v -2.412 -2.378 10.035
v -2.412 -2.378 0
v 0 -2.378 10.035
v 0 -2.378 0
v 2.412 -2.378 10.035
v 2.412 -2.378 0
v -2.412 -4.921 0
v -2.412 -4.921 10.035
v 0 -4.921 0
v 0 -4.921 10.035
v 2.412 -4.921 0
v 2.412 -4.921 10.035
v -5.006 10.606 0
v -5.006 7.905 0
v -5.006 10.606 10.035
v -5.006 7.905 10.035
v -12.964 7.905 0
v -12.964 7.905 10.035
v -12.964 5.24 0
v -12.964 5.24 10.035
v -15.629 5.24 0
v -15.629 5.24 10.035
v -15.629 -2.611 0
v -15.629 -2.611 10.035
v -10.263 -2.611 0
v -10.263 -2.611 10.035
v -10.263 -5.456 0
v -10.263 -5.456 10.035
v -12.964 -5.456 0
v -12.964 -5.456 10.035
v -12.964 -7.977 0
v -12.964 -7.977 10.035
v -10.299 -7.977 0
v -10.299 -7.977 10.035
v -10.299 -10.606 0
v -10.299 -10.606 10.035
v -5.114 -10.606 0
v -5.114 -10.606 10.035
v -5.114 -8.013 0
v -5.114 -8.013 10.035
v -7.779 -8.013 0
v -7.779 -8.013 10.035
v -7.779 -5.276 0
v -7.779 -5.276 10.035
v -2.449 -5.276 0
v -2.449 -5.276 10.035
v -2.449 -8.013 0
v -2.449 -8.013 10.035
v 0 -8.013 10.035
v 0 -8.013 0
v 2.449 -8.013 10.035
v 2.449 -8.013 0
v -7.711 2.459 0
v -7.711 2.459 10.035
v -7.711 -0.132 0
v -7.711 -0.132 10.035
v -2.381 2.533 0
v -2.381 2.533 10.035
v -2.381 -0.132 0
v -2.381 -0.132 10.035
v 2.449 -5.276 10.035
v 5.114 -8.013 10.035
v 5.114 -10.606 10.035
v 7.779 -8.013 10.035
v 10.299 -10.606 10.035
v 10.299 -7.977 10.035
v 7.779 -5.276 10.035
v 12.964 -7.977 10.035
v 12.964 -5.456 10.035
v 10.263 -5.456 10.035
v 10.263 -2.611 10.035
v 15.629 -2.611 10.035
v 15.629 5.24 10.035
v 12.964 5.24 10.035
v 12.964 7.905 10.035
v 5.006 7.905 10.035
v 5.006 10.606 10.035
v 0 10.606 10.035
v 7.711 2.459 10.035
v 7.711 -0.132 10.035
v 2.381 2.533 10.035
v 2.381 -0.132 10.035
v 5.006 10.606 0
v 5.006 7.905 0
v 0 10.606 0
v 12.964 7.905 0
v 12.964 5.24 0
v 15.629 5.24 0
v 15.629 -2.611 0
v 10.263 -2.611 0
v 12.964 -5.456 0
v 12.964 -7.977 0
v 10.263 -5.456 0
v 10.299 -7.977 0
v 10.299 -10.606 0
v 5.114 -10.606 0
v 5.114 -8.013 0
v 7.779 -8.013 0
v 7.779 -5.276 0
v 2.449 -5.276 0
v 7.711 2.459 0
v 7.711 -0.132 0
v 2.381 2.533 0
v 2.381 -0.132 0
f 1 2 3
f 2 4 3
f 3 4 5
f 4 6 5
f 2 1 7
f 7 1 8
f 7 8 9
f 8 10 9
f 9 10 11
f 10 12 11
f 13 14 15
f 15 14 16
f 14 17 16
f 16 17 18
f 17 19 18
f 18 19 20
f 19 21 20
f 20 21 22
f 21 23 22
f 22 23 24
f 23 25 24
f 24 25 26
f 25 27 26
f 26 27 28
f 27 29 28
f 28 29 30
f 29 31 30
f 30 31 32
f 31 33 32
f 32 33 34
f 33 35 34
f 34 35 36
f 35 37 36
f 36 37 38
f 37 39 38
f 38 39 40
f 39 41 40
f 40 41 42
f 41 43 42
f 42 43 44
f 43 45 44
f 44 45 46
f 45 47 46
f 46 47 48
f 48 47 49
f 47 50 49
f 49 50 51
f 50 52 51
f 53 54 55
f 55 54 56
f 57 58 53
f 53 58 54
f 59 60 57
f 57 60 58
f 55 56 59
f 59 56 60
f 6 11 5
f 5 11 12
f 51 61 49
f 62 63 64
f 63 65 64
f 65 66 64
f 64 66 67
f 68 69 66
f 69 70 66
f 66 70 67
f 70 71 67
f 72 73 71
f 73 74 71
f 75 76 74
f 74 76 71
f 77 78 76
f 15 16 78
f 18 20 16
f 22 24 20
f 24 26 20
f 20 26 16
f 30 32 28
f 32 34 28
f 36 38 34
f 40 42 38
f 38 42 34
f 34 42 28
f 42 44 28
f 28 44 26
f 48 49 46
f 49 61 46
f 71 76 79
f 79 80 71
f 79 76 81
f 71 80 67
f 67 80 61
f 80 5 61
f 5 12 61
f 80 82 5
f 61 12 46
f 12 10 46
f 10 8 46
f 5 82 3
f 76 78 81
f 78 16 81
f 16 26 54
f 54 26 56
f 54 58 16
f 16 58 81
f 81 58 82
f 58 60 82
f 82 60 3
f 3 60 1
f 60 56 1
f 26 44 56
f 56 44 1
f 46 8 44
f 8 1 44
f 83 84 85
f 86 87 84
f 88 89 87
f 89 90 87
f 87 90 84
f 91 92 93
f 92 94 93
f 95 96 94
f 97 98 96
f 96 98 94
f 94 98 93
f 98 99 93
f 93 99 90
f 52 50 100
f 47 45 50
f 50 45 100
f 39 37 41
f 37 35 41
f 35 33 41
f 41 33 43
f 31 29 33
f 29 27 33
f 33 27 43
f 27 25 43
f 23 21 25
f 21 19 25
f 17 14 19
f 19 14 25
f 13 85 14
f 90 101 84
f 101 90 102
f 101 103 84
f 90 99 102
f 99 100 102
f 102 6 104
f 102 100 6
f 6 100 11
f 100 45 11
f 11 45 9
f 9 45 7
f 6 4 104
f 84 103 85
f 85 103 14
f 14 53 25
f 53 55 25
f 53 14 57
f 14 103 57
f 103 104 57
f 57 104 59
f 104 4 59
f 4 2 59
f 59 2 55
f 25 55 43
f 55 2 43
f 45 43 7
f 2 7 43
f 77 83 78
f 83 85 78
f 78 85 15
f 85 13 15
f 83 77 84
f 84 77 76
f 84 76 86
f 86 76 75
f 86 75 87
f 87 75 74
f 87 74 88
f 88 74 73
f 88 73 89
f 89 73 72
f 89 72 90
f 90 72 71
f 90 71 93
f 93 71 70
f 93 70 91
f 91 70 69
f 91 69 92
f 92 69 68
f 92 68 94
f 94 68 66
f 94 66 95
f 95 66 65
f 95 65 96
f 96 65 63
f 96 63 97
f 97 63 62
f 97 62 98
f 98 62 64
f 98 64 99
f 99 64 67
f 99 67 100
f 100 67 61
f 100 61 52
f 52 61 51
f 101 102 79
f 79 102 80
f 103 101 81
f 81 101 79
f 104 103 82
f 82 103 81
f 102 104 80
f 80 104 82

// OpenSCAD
module invaders_v2_3() 
{
	polyhedron(
		points=[
			[-2.411966, -2.378253, 10.03545],
			[-2.411966, -2.378253, 0.0],
			[5.722046e-06, -2.378253, 10.03545],
			[-2.411966, -2.378253, 0.0],
			[5.722046e-06, -2.378251, 0.0],
			[5.722046e-06, -2.378253, 10.03545],
			[5.722046e-06, -2.378253, 10.03545],
			[5.722046e-06, -2.378251, 0.0],
			[2.41197, -2.378253, 10.03545],
			[5.722046e-06, -2.378251, 0.0],
			[2.41197, -2.378253, 0.0],
			[2.41197, -2.378253, 10.03545],
			[-2.411966, -2.378253, 0.0],
			[-2.411966, -2.378253, 10.03545],
			[-2.411966, -4.921153, 0.0],
			[-2.411966, -4.921153, 0.0],
			[-2.411966, -2.378253, 10.03545],
			[-2.411966, -4.921153, 10.03545],
			[-2.411966, -4.921153, 0.0],
			[-2.411966, -4.921153, 10.03545],
			[5.722046e-06, -4.921153, 0.0],
			[-2.411966, -4.921153, 10.03545],
			[5.722046e-06, -4.921153, 10.03545],
			[5.722046e-06, -4.921153, 0.0],
			[5.722046e-06, -4.921153, 0.0],
			[5.722046e-06, -4.921153, 10.03545],
			[2.41197, -4.921153, 0.0],
			[5.722046e-06, -4.921153, 10.03545],
			[2.41197, -4.921153, 10.03545],
			[2.41197, -4.921153, 0.0],
			[-5.005663, 10.60553, 0.0],
			[-5.005663, 7.904635, 0.0],
			[-5.005663, 10.60553, 10.03545],
			[-5.005663, 10.60553, 10.03545],
			[-5.005663, 7.904635, 0.0],
			[-5.005663, 7.904635, 10.03545],
			[-5.005663, 7.904635, 0.0],
			[-12.96432, 7.904635, 0.0],
			[-5.005663, 7.904635, 10.03545],
			[-5.005663, 7.904635, 10.03545],
			[-12.96432, 7.904635, 0.0],
			[-12.96432, 7.904635, 10.03545],
			[-12.96432, 7.904635, 0.0],
			[-12.96432, 5.239746, 0.0],
			[-12.96432, 7.904635, 10.03545],
			[-12.96432, 7.904635, 10.03545],
			[-12.96432, 5.239746, 0.0],
			[-12.96432, 5.239746, 10.03545],
			[-12.96432, 5.239746, 0.0],
			[-15.62921, 5.239746, 0.0],
			[-12.96432, 5.239746, 10.03545],
			[-12.96432, 5.239746, 10.03545],
			[-15.62921, 5.239746, 0.0],
			[-15.62921, 5.239746, 10.03544],
			[-15.62921, 5.239746, 0.0],
			[-15.62921, -2.610869, 0.0],
			[-15.62921, 5.239746, 10.03544],
			[-15.62921, 5.239746, 10.03544],
			[-15.62921, -2.610869, 0.0],
			[-15.62921, -2.610869, 10.03544],
			[-15.62921, -2.610869, 0.0],
			[-10.26342, -2.610869, 0.0],
			[-15.62921, -2.610869, 10.03544],
			[-15.62921, -2.610869, 10.03544],
			[-10.26342, -2.610869, 0.0],
			[-10.26342, -2.610869, 10.03545],
			[-10.26342, -2.610869, 0.0],
			[-10.26342, -5.455817, 0.0],
			[-10.26342, -2.610869, 10.03545],
			[-10.26342, -2.610869, 10.03545],
			[-10.26342, -5.455817, 0.0],
			[-10.26342, -5.455817, 10.03545],
			[-10.26342, -5.455817, 0.0],
			[-12.96432, -5.455817, 0.0],
			[-10.26342, -5.455817, 10.03545],
			[-10.26342, -5.455817, 10.03545],
			[-12.96432, -5.455817, 0.0],
			[-12.96432, -5.455817, 10.03545],
			[-12.96432, -5.455817, 0.0],
			[-12.96432, -7.976657, 0.0],
			[-12.96432, -5.455817, 10.03545],
			[-12.96432, -5.455817, 10.03545],
			[-12.96432, -7.976657, 0.0],
			[-12.96432, -7.976657, 10.03545],
			[-12.96432, -7.976657, 0.0],
			[-10.29943, -7.976657, 0.0],
			[-12.96432, -7.976657, 10.03545],
			[-12.96432, -7.976657, 10.03545],
			[-10.29943, -7.976657, 0.0],
			[-10.29943, -7.976657, 10.03545],
			[-10.29943, -7.976657, 0.0],
			[-10.29943, -10.60553, 0.0],
			[-10.29943, -7.976657, 10.03545],
			[-10.29943, -7.976657, 10.03545],
			[-10.29943, -10.60553, 0.0],
			[-10.29943, -10.60553, 10.03545],
			[-10.29943, -10.60553, 0.0],
			[-5.113695, -10.60553, 0.0],
			[-10.29943, -10.60553, 10.03545],
			[-10.29943, -10.60553, 10.03545],
			[-5.113695, -10.60553, 0.0],
			[-5.113695, -10.60553, 10.03545],
			[-5.113695, -10.60553, 0.0],
			[-5.113695, -8.012669, 0.0],
			[-5.113695, -10.60553, 10.03545],
			[-5.113695, -10.60553, 10.03545],
			[-5.113695, -8.012669, 0.0],
			[-5.113695, -8.012669, 10.03545],
			[-5.113695, -8.012669, 0.0],
			[-7.778589, -8.012669, 0.0],
			[-5.113695, -8.012669, 10.03545],
			[-5.113695, -8.012669, 10.03545],
			[-7.778589, -8.012669, 0.0],
			[-7.778589, -8.012669, 10.03545],
			[-7.778589, -8.012669, 0.0],
			[-7.778589, -5.275758, 0.0],
			[-7.778589, -8.012669, 10.03545],
			[-7.778589, -8.012669, 10.03545],
			[-7.778589, -5.275758, 0.0],
			[-7.778589, -5.275758, 10.03545],
			[-7.778589, -5.275758, 0.0],
			[-2.448809, -5.275758, 0.0],
			[-7.778589, -5.275758, 10.03545],
			[-7.778589, -5.275758, 10.03545],
			[-2.448809, -5.275758, 0.0],
			[-2.448809, -5.275758, 10.03545],
			[-2.448809, -5.275758, 0.0],
			[-2.448809, -8.012669, 0.0],
			[-2.448809, -5.275758, 10.03545],
			[-2.448809, -5.275758, 10.03545],
			[-2.448809, -8.012669, 0.0],
			[-2.448809, -8.012669, 10.03545],
			[-2.448809, -8.012669, 10.03545],
			[-2.448809, -8.012669, 0.0],
			[5.722046e-06, -8.012669, 10.03545],
			[-2.448809, -8.012669, 0.0],
			[5.722046e-06, -8.012669, 0.0],
			[5.722046e-06, -8.012669, 10.03545],
			[5.722046e-06, -8.012669, 10.03545],
			[5.722046e-06, -8.012669, 0.0],
			[2.448812, -8.012669, 10.03545],
			[5.722046e-06, -8.012669, 0.0],
			[2.448812, -8.012669, 0.0],
			[2.448812, -8.012669, 10.03545],
			[-7.710535, 2.458877, 0.0],
			[-7.710535, 2.458877, 10.03545],
			[-7.710535, -0.1319245, 0.0],
			[-7.710535, -0.1319245, 0.0],
			[-7.710535, 2.458877, 10.03545],
			[-7.710535, -0.1319245, 10.03545],
			[-2.380884, 2.5329, 0.0],
			[-2.380884, 2.5329, 10.03545],
			[-7.710535, 2.458877, 0.0],
			[-7.710535, 2.458877, 0.0],
			[-2.380884, 2.5329, 10.03545],
			[-7.710535, 2.458877, 10.03545],
			[-2.380884, -0.1319245, 0.0],
			[-2.380884, -0.1319245, 10.03545],
			[-2.380884, 2.5329, 0.0],
			[-2.380884, 2.5329, 0.0],
			[-2.380884, -0.1319245, 10.03545],
			[-2.380884, 2.5329, 10.03545],
			[-7.710535, -0.1319245, 0.0],
			[-7.710535, -0.1319245, 10.03545],
			[-2.380884, -0.1319245, 0.0],
			[-2.380884, -0.1319245, 0.0],
			[-7.710535, -0.1319245, 10.03545],
			[-2.380884, -0.1319245, 10.03545],
			[2.41197, -2.378253, 0.0],
			[2.41197, -4.921153, 0.0],
			[2.41197, -2.378253, 10.03545],
			[2.41197, -2.378253, 10.03545],
			[2.41197, -4.921153, 0.0],
			[2.41197, -4.921153, 10.03545],
			[2.448812, -8.012669, 10.03545],
			[2.448812, -5.275758, 10.03545],
			[5.722046e-06, -8.012669, 10.03545],
			[5.113699, -8.012671, 10.03545],
			[5.113699, -10.60553, 10.03545],
			[7.778585, -8.012671, 10.03545],
			[5.113699, -10.60553, 10.03545],
			[10.29942, -10.60553, 10.03545],
			[7.778585, -8.012671, 10.03545],
			[10.29942, -10.60553, 10.03545],
			[10.29942, -7.976657, 10.03545],
			[7.778585, -8.012671, 10.03545],
			[7.778585, -8.012671, 10.03545],
			[10.29942, -7.976657, 10.03545],
			[7.778585, -5.275758, 10.03545],
			[12.96432, -7.976659, 10.03545],
			[12.96432, -5.455819, 10.03545],
			[10.29942, -7.976657, 10.03545],
			[12.96432, -5.455819, 10.03545],
			[10.26341, -5.455819, 10.03545],
			[10.29942, -7.976657, 10.03545],
			[10.29942, -7.976657, 10.03545],
			[10.26341, -5.455819, 10.03545],
			[7.778585, -5.275758, 10.03545],
			[10.26341, -5.455819, 10.03545],
			[10.26341, -2.610871, 10.03545],
			[7.778585, -5.275758, 10.03545],
			[15.62921, -2.610871, 10.03545],
			[15.62921, 5.239745, 10.03545],
			[10.26341, -2.610871, 10.03545],
			[15.62921, 5.239745, 10.03545],
			[12.96432, 5.239745, 10.03545],
			[10.26341, -2.610871, 10.03545],
			[12.96432, 7.904634, 10.03545],
			[5.005667, 7.904634, 10.03545],
			[12.96432, 5.239745, 10.03545],
			[12.96432, 5.239745, 10.03545],
			[5.005667, 7.904634, 10.03545],
			[10.26341, -2.610871, 10.03545],
			[5.005667, 10.60553, 10.03545],
			[5.722046e-06, 10.60553, 10.03545],
			[5.005667, 7.904634, 10.03545],
			[-5.005663, 10.60553, 10.03545],
			[-5.005663, 7.904635, 10.03545],
			[5.722046e-06, 10.60553, 10.03545],
			[-12.96432, 7.904635, 10.03545],
			[-12.96432, 5.239746, 10.03545],
			[-5.005663, 7.904635, 10.03545],
			[-15.62921, 5.239746, 10.03544],
			[-15.62921, -2.610869, 10.03544],
			[-12.96432, 5.239746, 10.03545],
			[-15.62921, -2.610869, 10.03544],
			[-10.26342, -2.610869, 10.03545],
			[-12.96432, 5.239746, 10.03545],
			[-12.96432, 5.239746, 10.03545],
			[-10.26342, -2.610869, 10.03545],
			[-5.005663, 7.904635, 10.03545],
			[-12.96432, -5.455817, 10.03545],
			[-12.96432, -7.976657, 10.03545],
			[-10.26342, -5.455817, 10.03545],
			[-12.96432, -7.976657, 10.03545],
			[-10.29943, -7.976657, 10.03545],
			[-10.26342, -5.455817, 10.03545],
			[-10.29943, -10.60553, 10.03545],
			[-5.113695, -10.60553, 10.03545],
			[-10.29943, -7.976657, 10.03545],
			[-5.113695, -8.012669, 10.03545],
			[-7.778589, -8.012669, 10.03545],
			[-5.113695, -10.60553, 10.03545],
			[-5.113695, -10.60553, 10.03545],
			[-7.778589, -8.012669, 10.03545],
			[-10.29943, -7.976657, 10.03545],
			[-10.29943, -7.976657, 10.03545],
			[-7.778589, -8.012669, 10.03545],
			[-10.26342, -5.455817, 10.03545],
			[-7.778589, -8.012669, 10.03545],
			[-7.778589, -5.275758, 10.03545],
			[-10.26342, -5.455817, 10.03545],
			[-10.26342, -5.455817, 10.03545],
			[-7.778589, -5.275758, 10.03545],
			[-10.26342, -2.610869, 10.03545],
			[-2.448809, -8.012669, 10.03545],
			[5.722046e-06, -8.012669, 10.03545],
			[-2.448809, -5.275758, 10.03545],
			[5.722046e-06, -8.012669, 10.03545],
			[2.448812, -5.275758, 10.03545],
			[-2.448809, -5.275758, 10.03545],
			[10.26341, -2.610871, 10.03545],
			[5.005667, 7.904634, 10.03545],
			[7.710527, 2.458877, 10.03545],
			[7.710527, 2.458877, 10.03545],
			[7.710527, -0.1319255, 10.03545],
			[10.26341, -2.610871, 10.03545],
			[7.710527, 2.458877, 10.03545],
			[5.005667, 7.904634, 10.03545],
			[2.380888, 2.5329, 10.03545],
			[10.26341, -2.610871, 10.03545],
			[7.710527, -0.1319255, 10.03545],
			[7.778585, -5.275758, 10.03545],
			[7.778585, -5.275758, 10.03545],
			[7.710527, -0.1319255, 10.03545],
			[2.448812, -5.275758, 10.03545],
			[7.710527, -0.1319255, 10.03545],
			[2.41197, -2.378253, 10.03545],
			[2.448812, -5.275758, 10.03545],
			[2.41197, -2.378253, 10.03545],
			[2.41197, -4.921153, 10.03545],
			[2.448812, -5.275758, 10.03545],
			[7.710527, -0.1319255, 10.03545],
			[2.380888, -0.1319255, 10.03545],
			[2.41197, -2.378253, 10.03545],
			[2.448812, -5.275758, 10.03545],
			[2.41197, -4.921153, 10.03545],
			[-2.448809, -5.275758, 10.03545],
			[2.41197, -4.921153, 10.03545],
			[5.722046e-06, -4.921153, 10.03545],
			[-2.448809, -5.275758, 10.03545],
			[5.722046e-06, -4.921153, 10.03545],
			[-2.411966, -4.921153, 10.03545],
			[-2.448809, -5.275758, 10.03545],
			[2.41197, -2.378253, 10.03545],
			[2.380888, -0.1319255, 10.03545],
			[5.722046e-06, -2.378253, 10.03545],
			[5.005667, 7.904634, 10.03545],
			[5.722046e-06, 10.60553, 10.03545],
			[2.380888, 2.5329, 10.03545],
			[5.722046e-06, 10.60553, 10.03545],
			[-5.005663, 7.904635, 10.03545],
			[2.380888, 2.5329, 10.03545],
			[-5.005663, 7.904635, 10.03545],
			[-10.26342, -2.610869, 10.03545],
			[-7.710535, 2.458877, 10.03545],
			[-7.710535, 2.458877, 10.03545],
			[-10.26342, -2.610869, 10.03545],
			[-7.710535, -0.1319245, 10.03545],
			[-7.710535, 2.458877, 10.03545],
			[-2.380884, 2.5329, 10.03545],
			[-5.005663, 7.904635, 10.03545],
			[-5.005663, 7.904635, 10.03545],
			[-2.380884, 2.5329, 10.03545],
			[2.380888, 2.5329, 10.03545],
			[2.380888, 2.5329, 10.03545],
			[-2.380884, 2.5329, 10.03545],
			[2.380888, -0.1319255, 10.03545],
			[-2.380884, 2.5329, 10.03545],
			[-2.380884, -0.1319245, 10.03545],
			[2.380888, -0.1319255, 10.03545],
			[2.380888, -0.1319255, 10.03545],
			[-2.380884, -0.1319245, 10.03545],
			[5.722046e-06, -2.378253, 10.03545],
			[5.722046e-06, -2.378253, 10.03545],
			[-2.380884, -0.1319245, 10.03545],
			[-2.411966, -2.378253, 10.03545],
			[-2.380884, -0.1319245, 10.03545],
			[-7.710535, -0.1319245, 10.03545],
			[-2.411966, -2.378253, 10.03545],
			[-10.26342, -2.610869, 10.03545],
			[-7.778589, -5.275758, 10.03545],
			[-7.710535, -0.1319245, 10.03545],
			[-7.710535, -0.1319245, 10.03545],
			[-7.778589, -5.275758, 10.03545],
			[-2.411966, -2.378253, 10.03545],
			[-2.448809, -5.275758, 10.03545],
			[-2.411966, -4.921153, 10.03545],
			[-7.778589, -5.275758, 10.03545],
			[-2.411966, -4.921153, 10.03545],
			[-2.411966, -2.378253, 10.03545],
			[-7.778589, -5.275758, 10.03545],
			[5.005667, 10.60553, 4.768372e-06],
			[5.005667, 7.904634, 4.768372e-06],
			[5.722046e-06, 10.60553, 0.0],
			[12.96432, 7.904634, 4.768372e-06],
			[12.96432, 5.239745, 4.768372e-06],
			[5.005667, 7.904634, 4.768372e-06],
			[15.62921, 5.239745, 4.768372e-06],
			[15.62921, -2.610871, 4.768372e-06],
			[12.96432, 5.239745, 4.768372e-06],
			[15.62921, -2.610871, 4.768372e-06],
			[10.26341, -2.610871, 4.768372e-06],
			[12.96432, 5.239745, 4.768372e-06],
			[12.96432, 5.239745, 4.768372e-06],
			[10.26341, -2.610871, 4.768372e-06],
			[5.005667, 7.904634, 4.768372e-06],
			[12.96432, -5.455819, 4.768372e-06],
			[12.96432, -7.976659, 4.768372e-06],
			[10.26341, -5.455819, 4.768372e-06],
			[12.96432, -7.976659, 4.768372e-06],
			[10.29942, -7.976657, 4.768372e-06],
			[10.26341, -5.455819, 4.768372e-06],
			[10.29942, -10.60553, 4.768372e-06],
			[5.113699, -10.60553, 4.768372e-06],
			[10.29942, -7.976657, 4.768372e-06],
			[5.113699, -8.012671, 4.768372e-06],
			[7.778585, -8.012671, 4.768372e-06],
			[5.113699, -10.60553, 4.768372e-06],
			[5.113699, -10.60553, 4.768372e-06],
			[7.778585, -8.012671, 4.768372e-06],
			[10.29942, -7.976657, 4.768372e-06],
			[10.29942, -7.976657, 4.768372e-06],
			[7.778585, -8.012671, 4.768372e-06],
			[10.26341, -5.455819, 4.768372e-06],
			[7.778585, -8.012671, 4.768372e-06],
			[7.778585, -5.275758, 4.768372e-06],
			[10.26341, -5.455819, 4.768372e-06],
			[10.26341, -5.455819, 4.768372e-06],
			[7.778585, -5.275758, 4.768372e-06],
			[10.26341, -2.610871, 4.768372e-06],
			[2.448812, -8.012669, 0.0],
			[5.722046e-06, -8.012669, 0.0],
			[2.448812, -5.275758, 0.0],
			[-2.448809, -8.012669, 0.0],
			[-2.448809, -5.275758, 0.0],
			[5.722046e-06, -8.012669, 0.0],
			[5.722046e-06, -8.012669, 0.0],
			[-2.448809, -5.275758, 0.0],
			[2.448812, -5.275758, 0.0],
			[-5.113695, -8.012669, 0.0],
			[-5.113695, -10.60553, 0.0],
			[-7.778589, -8.012669, 0.0],
			[-5.113695, -10.60553, 0.0],
			[-10.29943, -10.60553, 0.0],
			[-7.778589, -8.012669, 0.0],
			[-10.29943, -10.60553, 0.0],
			[-10.29943, -7.976657, 0.0],
			[-7.778589, -8.012669, 0.0],
			[-7.778589, -8.012669, 0.0],
			[-10.29943, -7.976657, 0.0],
			[-7.778589, -5.275758, 0.0],
			[-12.96432, -7.976657, 0.0],
			[-12.96432, -5.455817, 0.0],
			[-10.29943, -7.976657, 0.0],
			[-12.96432, -5.455817, 0.0],
			[-10.26342, -5.455817, 0.0],
			[-10.29943, -7.976657, 0.0],
			[-10.29943, -7.976657, 0.0],
			[-10.26342, -5.455817, 0.0],
			[-7.778589, -5.275758, 0.0],
			[-10.26342, -5.455817, 0.0],
			[-10.26342, -2.610869, 0.0],
			[-7.778589, -5.275758, 0.0],
			[-15.62921, -2.610869, 0.0],
			[-15.62921, 5.239746, 0.0],
			[-10.26342, -2.610869, 0.0],
			[-15.62921, 5.239746, 0.0],
			[-12.96432, 5.239746, 0.0],
			[-10.26342, -2.610869, 0.0],
			[-12.96432, 7.904635, 0.0],
			[-5.005663, 7.904635, 0.0],
			[-12.96432, 5.239746, 0.0],
			[-12.96432, 5.239746, 0.0],
			[-5.005663, 7.904635, 0.0],
			[-10.26342, -2.610869, 0.0],
			[-5.005663, 10.60553, 0.0],
			[5.722046e-06, 10.60553, 0.0],
			[-5.005663, 7.904635, 0.0],
			[10.26341, -2.610871, 4.768372e-06],
			[7.710527, 2.458877, 4.768372e-06],
			[5.005667, 7.904634, 4.768372e-06],
			[7.710527, 2.458877, 4.768372e-06],
			[10.26341, -2.610871, 4.768372e-06],
			[7.710527, -0.1319255, 4.768372e-06],
			[7.710527, 2.458877, 4.768372e-06],
			[2.380888, 2.5329, 0.0],
			[5.005667, 7.904634, 4.768372e-06],
			[10.26341, -2.610871, 4.768372e-06],
			[7.778585, -5.275758, 4.768372e-06],
			[7.710527, -0.1319255, 4.768372e-06],
			[7.778585, -5.275758, 4.768372e-06],
			[2.448812, -5.275758, 0.0],
			[7.710527, -0.1319255, 4.768372e-06],
			[7.710527, -0.1319255, 4.768372e-06],
			[2.41197, -2.378253, 0.0],
			[2.380888, -0.1319255, 0.0],
			[7.710527, -0.1319255, 4.768372e-06],
			[2.448812, -5.275758, 0.0],
			[2.41197, -2.378253, 0.0],
			[2.41197, -2.378253, 0.0],
			[2.448812, -5.275758, 0.0],
			[2.41197, -4.921153, 0.0],
			[2.448812, -5.275758, 0.0],
			[-2.448809, -5.275758, 0.0],
			[2.41197, -4.921153, 0.0],
			[2.41197, -4.921153, 0.0],
			[-2.448809, -5.275758, 0.0],
			[5.722046e-06, -4.921153, 0.0],
			[5.722046e-06, -4.921153, 0.0],
			[-2.448809, -5.275758, 0.0],
			[-2.411966, -4.921153, 0.0],
			[2.41197, -2.378253, 0.0],
			[5.722046e-06, -2.378251, 0.0],
			[2.380888, -0.1319255, 0.0],
			[5.005667, 7.904634, 4.768372e-06],
			[2.380888, 2.5329, 0.0],
			[5.722046e-06, 10.60553, 0.0],
			[5.722046e-06, 10.60553, 0.0],
			[2.380888, 2.5329, 0.0],
			[-5.005663, 7.904635, 0.0],
			[-5.005663, 7.904635, 0.0],
			[-7.710535, 2.458877, 0.0],
			[-10.26342, -2.610869, 0.0],
			[-7.710535, 2.458877, 0.0],
			[-7.710535, -0.1319245, 0.0],
			[-10.26342, -2.610869, 0.0],
			[-7.710535, 2.458877, 0.0],
			[-5.005663, 7.904635, 0.0],
			[-2.380884, 2.5329, 0.0],
			[-5.005663, 7.904635, 0.0],
			[2.380888, 2.5329, 0.0],
			[-2.380884, 2.5329, 0.0],
			[2.380888, 2.5329, 0.0],
			[2.380888, -0.1319255, 0.0],
			[-2.380884, 2.5329, 0.0],
			[-2.380884, 2.5329, 0.0],
			[2.380888, -0.1319255, 0.0],
			[-2.380884, -0.1319245, 0.0],
			[2.380888, -0.1319255, 0.0],
			[5.722046e-06, -2.378251, 0.0],
			[-2.380884, -0.1319245, 0.0],
			[5.722046e-06, -2.378251, 0.0],
			[-2.411966, -2.378253, 0.0],
			[-2.380884, -0.1319245, 0.0],
			[-2.380884, -0.1319245, 0.0],
			[-2.411966, -2.378253, 0.0],
			[-7.710535, -0.1319245, 0.0],
			[-10.26342, -2.610869, 0.0],
			[-7.710535, -0.1319245, 0.0],
			[-7.778589, -5.275758, 0.0],
			[-7.710535, -0.1319245, 0.0],
			[-2.411966, -2.378253, 0.0],
			[-7.778589, -5.275758, 0.0],
			[-2.448809, -5.275758, 0.0],
			[-7.778589, -5.275758, 0.0],
			[-2.411966, -4.921153, 0.0],
			[-2.411966, -2.378253, 0.0],
			[-2.411966, -4.921153, 0.0],
			[-7.778589, -5.275758, 0.0],
			[5.005667, 10.60553, 10.03545],
			[5.005667, 10.60553, 4.768372e-06],
			[5.722046e-06, 10.60553, 10.03545],
			[5.005667, 10.60553, 4.768372e-06],
			[5.722046e-06, 10.60553, 0.0],
			[5.722046e-06, 10.60553, 10.03545],
			[5.722046e-06, 10.60553, 10.03545],
			[5.722046e-06, 10.60553, 0.0],
			[-5.005663, 10.60553, 10.03545],
			[5.722046e-06, 10.60553, 0.0],
			[-5.005663, 10.60553, 0.0],
			[-5.005663, 10.60553, 10.03545],
			[5.005667, 10.60553, 4.768372e-06],
			[5.005667, 10.60553, 10.03545],
			[5.005667, 7.904634, 4.768372e-06],
			[5.005667, 7.904634, 4.768372e-06],
			[5.005667, 10.60553, 10.03545],
			[5.005667, 7.904634, 10.03545],
			[5.005667, 7.904634, 4.768372e-06],
			[5.005667, 7.904634, 10.03545],
			[12.96432, 7.904634, 4.768372e-06],
			[12.96432, 7.904634, 4.768372e-06],
			[5.005667, 7.904634, 10.03545],
			[12.96432, 7.904634, 10.03545],
			[12.96432, 7.904634, 4.768372e-06],
			[12.96432, 7.904634, 10.03545],
			[12.96432, 5.239745, 4.768372e-06],
			[12.96432, 5.239745, 4.768372e-06],
			[12.96432, 7.904634, 10.03545],
			[12.96432, 5.239745, 10.03545],
			[12.96432, 5.239745, 4.768372e-06],
			[12.96432, 5.239745, 10.03545],
			[15.62921, 5.239745, 4.768372e-06],
			[15.62921, 5.239745, 4.768372e-06],
			[12.96432, 5.239745, 10.03545],
			[15.62921, 5.239745, 10.03545],
			[15.62921, 5.239745, 4.768372e-06],
			[15.62921, 5.239745, 10.03545],
			[15.62921, -2.610871, 4.768372e-06],
			[15.62921, -2.610871, 4.768372e-06],
			[15.62921, 5.239745, 10.03545],
			[15.62921, -2.610871, 10.03545],
			[15.62921, -2.610871, 4.768372e-06],
			[15.62921, -2.610871, 10.03545],
			[10.26341, -2.610871, 4.768372e-06],
			[10.26341, -2.610871, 4.768372e-06],
			[15.62921, -2.610871, 10.03545],
			[10.26341, -2.610871, 10.03545],
			[10.26341, -2.610871, 4.768372e-06],
			[10.26341, -2.610871, 10.03545],
			[10.26341, -5.455819, 4.768372e-06],
			[10.26341, -5.455819, 4.768372e-06],
			[10.26341, -2.610871, 10.03545],
			[10.26341, -5.455819, 10.03545],
			[10.26341, -5.455819, 4.768372e-06],
			[10.26341, -5.455819, 10.03545],
			[12.96432, -5.455819, 4.768372e-06],
			[12.96432, -5.455819, 4.768372e-06],
			[10.26341, -5.455819, 10.03545],
			[12.96432, -5.455819, 10.03545],
			[12.96432, -5.455819, 4.768372e-06],
			[12.96432, -5.455819, 10.03545],
			[12.96432, -7.976659, 4.768372e-06],
			[12.96432, -7.976659, 4.768372e-06],
			[12.96432, -5.455819, 10.03545],
			[12.96432, -7.976659, 10.03545],
			[12.96432, -7.976659, 4.768372e-06],
			[12.96432, -7.976659, 10.03545],
			[10.29942, -7.976657, 4.768372e-06],
			[10.29942, -7.976657, 4.768372e-06],
			[12.96432, -7.976659, 10.03545],
			[10.29942, -7.976657, 10.03545],
			[10.29942, -7.976657, 4.768372e-06],
			[10.29942, -7.976657, 10.03545],
			[10.29942, -10.60553, 4.768372e-06],
			[10.29942, -10.60553, 4.768372e-06],
			[10.29942, -7.976657, 10.03545],
			[10.29942, -10.60553, 10.03545],
			[10.29942, -10.60553, 4.768372e-06],
			[10.29942, -10.60553, 10.03545],
			[5.113699, -10.60553, 4.768372e-06],
			[5.113699, -10.60553, 4.768372e-06],
			[10.29942, -10.60553, 10.03545],
			[5.113699, -10.60553, 10.03545],
			[5.113699, -10.60553, 4.768372e-06],
			[5.113699, -10.60553, 10.03545],
			[5.113699, -8.012671, 4.768372e-06],
			[5.113699, -8.012671, 4.768372e-06],
			[5.113699, -10.60553, 10.03545],
			[5.113699, -8.012671, 10.03545],
			[5.113699, -8.012671, 4.768372e-06],
			[5.113699, -8.012671, 10.03545],
			[7.778585, -8.012671, 4.768372e-06],
			[7.778585, -8.012671, 4.768372e-06],
			[5.113699, -8.012671, 10.03545],
			[7.778585, -8.012671, 10.03545],
			[7.778585, -8.012671, 4.768372e-06],
			[7.778585, -8.012671, 10.03545],
			[7.778585, -5.275758, 4.768372e-06],
			[7.778585, -5.275758, 4.768372e-06],
			[7.778585, -8.012671, 10.03545],
			[7.778585, -5.275758, 10.03545],
			[7.778585, -5.275758, 4.768372e-06],
			[7.778585, -5.275758, 10.03545],
			[2.448812, -5.275758, 0.0],
			[2.448812, -5.275758, 0.0],
			[7.778585, -5.275758, 10.03545],
			[2.448812, -5.275758, 10.03545],
			[2.448812, -5.275758, 0.0],
			[2.448812, -5.275758, 10.03545],
			[2.448812, -8.012669, 0.0],
			[2.448812, -8.012669, 0.0],
			[2.448812, -5.275758, 10.03545],
			[2.448812, -8.012669, 10.03545],
			[7.710527, 2.458877, 4.768372e-06],
			[7.710527, -0.1319255, 4.768372e-06],
			[7.710527, 2.458877, 10.03545],
			[7.710527, 2.458877, 10.03545],
			[7.710527, -0.1319255, 4.768372e-06],
			[7.710527, -0.1319255, 10.03545],
			[2.380888, 2.5329, 0.0],
			[7.710527, 2.458877, 4.768372e-06],
			[2.380888, 2.5329, 10.03545],
			[2.380888, 2.5329, 10.03545],
			[7.710527, 2.458877, 4.768372e-06],
			[7.710527, 2.458877, 10.03545],
			[2.380888, -0.1319255, 0.0],
			[2.380888, 2.5329, 0.0],
			[2.380888, -0.1319255, 10.03545],
			[2.380888, -0.1319255, 10.03545],
			[2.380888, 2.5329, 0.0],
			[2.380888, 2.5329, 10.03545],
			[7.710527, -0.1319255, 4.768372e-06],
			[2.380888, -0.1319255, 0.0],
			[7.710527, -0.1319255, 10.03545],
			[7.710527, -0.1319255, 10.03545],
			[2.380888, -0.1319255, 0.0],
			[2.380888, -0.1319255, 10.03545]
		],
		faces=[
			[0, 1, 2],
			[3, 4, 5],
			[6, 7, 8],
			[9, 10, 11],
			[12, 13, 14],
			[15, 16, 17],
			[18, 19, 20],
			[21, 22, 23],
			[24, 25, 26],
			[27, 28, 29],
			[30, 31, 32],
			[33, 34, 35],
			[36, 37, 38],
			[39, 40, 41],
			[42, 43, 44],
			[45, 46, 47],
			[48, 49, 50],
			[51, 52, 53],
			[54, 55, 56],
			[57, 58, 59],
			[60, 61, 62],
			[63, 64, 65],
			[66, 67, 68],
			[69, 70, 71],
			[72, 73, 74],
			[75, 76, 77],
			[78, 79, 80],
			[81, 82, 83],
			[84, 85, 86],
			[87, 88, 89],
			[90, 91, 92],
			[93, 94, 95],
			[96, 97, 98],
			[99, 100, 101],
			[102, 103, 104],
			[105, 106, 107],
			[108, 109, 110],
			[111, 112, 113],
			[114, 115, 116],
			[117, 118, 119],
			[120, 121, 122],
			[123, 124, 125],
			[126, 127, 128],
			[129, 130, 131],
			[132, 133, 134],
			[135, 136, 137],
			[138, 139, 140],
			[141, 142, 143],
			[144, 145, 146],
			[147, 148, 149],
			[150, 151, 152],
			[153, 154, 155],
			[156, 157, 158],
			[159, 160, 161],
			[162, 163, 164],
			[165, 166, 167],
			[168, 169, 170],
			[171, 172, 173],
			[174, 175, 176],
			[177, 178, 179],
			[180, 181, 182],
			[183, 184, 185],
			[186, 187, 188],
			[189, 190, 191],
			[192, 193, 194],
			[195, 196, 197],
			[198, 199, 200],
			[201, 202, 203],
			[204, 205, 206],
			[207, 208, 209],
			[210, 211, 212],
			[213, 214, 215],
			[216, 217, 218],
			[219, 220, 221],
			[222, 223, 224],
			[225, 226, 227],
			[228, 229, 230],
			[231, 232, 233],
			[234, 235, 236],
			[237, 238, 239],
			[240, 241, 242],
			[243, 244, 245],
			[246, 247, 248],
			[249, 250, 251],
			[252, 253, 254],
			[255, 256, 257],
			[258, 259, 260],
			[261, 262, 263],
			[264, 265, 266],
			[267, 268, 269],
			[270, 271, 272],
			[273, 274, 275],
			[276, 277, 278],
			[279, 280, 281],
			[282, 283, 284],
			[285, 286, 287],
			[288, 289, 290],
			[291, 292, 293],
			[294, 295, 296],
			[297, 298, 299],
			[300, 301, 302],
			[303, 304, 305],
			[306, 307, 308],
			[309, 310, 311],
			[312, 313, 314],
			[315, 316, 317],
			[318, 319, 320],
			[321, 322, 323],
			[324, 325, 326],
			[327, 328, 329],
			[330, 331, 332],
			[333, 334, 335],
			[336, 337, 338],
			[339, 340, 341],
			[342, 343, 344],
			[345, 346, 347],
			[348, 349, 350],
			[351, 352, 353],
			[354, 355, 356],
			[357, 358, 359],
			[360, 361, 362],
			[363, 364, 365],
			[366, 367, 368],
			[369, 370, 371],
			[372, 373, 374],
			[375, 376, 377],
			[378, 379, 380],
			[381, 382, 383],
			[384, 385, 386],
			[387, 388, 389],
			[390, 391, 392],
			[393, 394, 395],
			[396, 397, 398],
			[399, 400, 401],
			[402, 403, 404],
			[405, 406, 407],
			[408, 409, 410],
			[411, 412, 413],
			[414, 415, 416],
			[417, 418, 419],
			[420, 421, 422],
			[423, 424, 425],
			[426, 427, 428],
			[429, 430, 431],
			[432, 433, 434],
			[435, 436, 437],
			[438, 439, 440],
			[441, 442, 443],
			[444, 445, 446],
			[447, 448, 449],
			[450, 451, 452],
			[453, 454, 455],
			[456, 457, 458],
			[459, 460, 461],
			[462, 463, 464],
			[465, 466, 467],
			[468, 469, 470],
			[471, 472, 473],
			[474, 475, 476],
			[477, 478, 479],
			[480, 481, 482],
			[483, 484, 485],
			[486, 487, 488],
			[489, 490, 491],
			[492, 493, 494],
			[495, 496, 497],
			[498, 499, 500],
			[501, 502, 503],
			[504, 505, 506],
			[507, 508, 509],
			[510, 511, 512],
			[513, 514, 515],
			[516, 517, 518],
			[519, 520, 521],
			[522, 523, 524],
			[525, 526, 527],
			[528, 529, 530],
			[531, 532, 533],
			[534, 535, 536],
			[537, 538, 539],
			[540, 541, 542],
			[543, 544, 545],
			[546, 547, 548],
			[549, 550, 551],
			[552, 553, 554],
			[555, 556, 557],
			[558, 559, 560],
			[561, 562, 563],
			[564, 565, 566],
			[567, 568, 569],
			[570, 571, 572],
			[573, 574, 575],
			[576, 577, 578],
			[579, 580, 581],
			[582, 583, 584],
			[585, 586, 587],
			[588, 589, 590],
			[591, 592, 593],
			[594, 595, 596],
			[597, 598, 599],
			[600, 601, 602],
			[603, 604, 605],
			[606, 607, 608],
			[609, 610, 611],
			[612, 613, 614],
			[615, 616, 617],
			[618, 619, 620],
			[621, 622, 623],
			[624, 625, 626],
			[627, 628, 629],
			[630, 631, 632],
			[633, 634, 635],
			[636, 637, 638],
			[639, 640, 641],
			[642, 643, 644],
			[645, 646, 647]
		]
	);
}


invaders_v2_3();
